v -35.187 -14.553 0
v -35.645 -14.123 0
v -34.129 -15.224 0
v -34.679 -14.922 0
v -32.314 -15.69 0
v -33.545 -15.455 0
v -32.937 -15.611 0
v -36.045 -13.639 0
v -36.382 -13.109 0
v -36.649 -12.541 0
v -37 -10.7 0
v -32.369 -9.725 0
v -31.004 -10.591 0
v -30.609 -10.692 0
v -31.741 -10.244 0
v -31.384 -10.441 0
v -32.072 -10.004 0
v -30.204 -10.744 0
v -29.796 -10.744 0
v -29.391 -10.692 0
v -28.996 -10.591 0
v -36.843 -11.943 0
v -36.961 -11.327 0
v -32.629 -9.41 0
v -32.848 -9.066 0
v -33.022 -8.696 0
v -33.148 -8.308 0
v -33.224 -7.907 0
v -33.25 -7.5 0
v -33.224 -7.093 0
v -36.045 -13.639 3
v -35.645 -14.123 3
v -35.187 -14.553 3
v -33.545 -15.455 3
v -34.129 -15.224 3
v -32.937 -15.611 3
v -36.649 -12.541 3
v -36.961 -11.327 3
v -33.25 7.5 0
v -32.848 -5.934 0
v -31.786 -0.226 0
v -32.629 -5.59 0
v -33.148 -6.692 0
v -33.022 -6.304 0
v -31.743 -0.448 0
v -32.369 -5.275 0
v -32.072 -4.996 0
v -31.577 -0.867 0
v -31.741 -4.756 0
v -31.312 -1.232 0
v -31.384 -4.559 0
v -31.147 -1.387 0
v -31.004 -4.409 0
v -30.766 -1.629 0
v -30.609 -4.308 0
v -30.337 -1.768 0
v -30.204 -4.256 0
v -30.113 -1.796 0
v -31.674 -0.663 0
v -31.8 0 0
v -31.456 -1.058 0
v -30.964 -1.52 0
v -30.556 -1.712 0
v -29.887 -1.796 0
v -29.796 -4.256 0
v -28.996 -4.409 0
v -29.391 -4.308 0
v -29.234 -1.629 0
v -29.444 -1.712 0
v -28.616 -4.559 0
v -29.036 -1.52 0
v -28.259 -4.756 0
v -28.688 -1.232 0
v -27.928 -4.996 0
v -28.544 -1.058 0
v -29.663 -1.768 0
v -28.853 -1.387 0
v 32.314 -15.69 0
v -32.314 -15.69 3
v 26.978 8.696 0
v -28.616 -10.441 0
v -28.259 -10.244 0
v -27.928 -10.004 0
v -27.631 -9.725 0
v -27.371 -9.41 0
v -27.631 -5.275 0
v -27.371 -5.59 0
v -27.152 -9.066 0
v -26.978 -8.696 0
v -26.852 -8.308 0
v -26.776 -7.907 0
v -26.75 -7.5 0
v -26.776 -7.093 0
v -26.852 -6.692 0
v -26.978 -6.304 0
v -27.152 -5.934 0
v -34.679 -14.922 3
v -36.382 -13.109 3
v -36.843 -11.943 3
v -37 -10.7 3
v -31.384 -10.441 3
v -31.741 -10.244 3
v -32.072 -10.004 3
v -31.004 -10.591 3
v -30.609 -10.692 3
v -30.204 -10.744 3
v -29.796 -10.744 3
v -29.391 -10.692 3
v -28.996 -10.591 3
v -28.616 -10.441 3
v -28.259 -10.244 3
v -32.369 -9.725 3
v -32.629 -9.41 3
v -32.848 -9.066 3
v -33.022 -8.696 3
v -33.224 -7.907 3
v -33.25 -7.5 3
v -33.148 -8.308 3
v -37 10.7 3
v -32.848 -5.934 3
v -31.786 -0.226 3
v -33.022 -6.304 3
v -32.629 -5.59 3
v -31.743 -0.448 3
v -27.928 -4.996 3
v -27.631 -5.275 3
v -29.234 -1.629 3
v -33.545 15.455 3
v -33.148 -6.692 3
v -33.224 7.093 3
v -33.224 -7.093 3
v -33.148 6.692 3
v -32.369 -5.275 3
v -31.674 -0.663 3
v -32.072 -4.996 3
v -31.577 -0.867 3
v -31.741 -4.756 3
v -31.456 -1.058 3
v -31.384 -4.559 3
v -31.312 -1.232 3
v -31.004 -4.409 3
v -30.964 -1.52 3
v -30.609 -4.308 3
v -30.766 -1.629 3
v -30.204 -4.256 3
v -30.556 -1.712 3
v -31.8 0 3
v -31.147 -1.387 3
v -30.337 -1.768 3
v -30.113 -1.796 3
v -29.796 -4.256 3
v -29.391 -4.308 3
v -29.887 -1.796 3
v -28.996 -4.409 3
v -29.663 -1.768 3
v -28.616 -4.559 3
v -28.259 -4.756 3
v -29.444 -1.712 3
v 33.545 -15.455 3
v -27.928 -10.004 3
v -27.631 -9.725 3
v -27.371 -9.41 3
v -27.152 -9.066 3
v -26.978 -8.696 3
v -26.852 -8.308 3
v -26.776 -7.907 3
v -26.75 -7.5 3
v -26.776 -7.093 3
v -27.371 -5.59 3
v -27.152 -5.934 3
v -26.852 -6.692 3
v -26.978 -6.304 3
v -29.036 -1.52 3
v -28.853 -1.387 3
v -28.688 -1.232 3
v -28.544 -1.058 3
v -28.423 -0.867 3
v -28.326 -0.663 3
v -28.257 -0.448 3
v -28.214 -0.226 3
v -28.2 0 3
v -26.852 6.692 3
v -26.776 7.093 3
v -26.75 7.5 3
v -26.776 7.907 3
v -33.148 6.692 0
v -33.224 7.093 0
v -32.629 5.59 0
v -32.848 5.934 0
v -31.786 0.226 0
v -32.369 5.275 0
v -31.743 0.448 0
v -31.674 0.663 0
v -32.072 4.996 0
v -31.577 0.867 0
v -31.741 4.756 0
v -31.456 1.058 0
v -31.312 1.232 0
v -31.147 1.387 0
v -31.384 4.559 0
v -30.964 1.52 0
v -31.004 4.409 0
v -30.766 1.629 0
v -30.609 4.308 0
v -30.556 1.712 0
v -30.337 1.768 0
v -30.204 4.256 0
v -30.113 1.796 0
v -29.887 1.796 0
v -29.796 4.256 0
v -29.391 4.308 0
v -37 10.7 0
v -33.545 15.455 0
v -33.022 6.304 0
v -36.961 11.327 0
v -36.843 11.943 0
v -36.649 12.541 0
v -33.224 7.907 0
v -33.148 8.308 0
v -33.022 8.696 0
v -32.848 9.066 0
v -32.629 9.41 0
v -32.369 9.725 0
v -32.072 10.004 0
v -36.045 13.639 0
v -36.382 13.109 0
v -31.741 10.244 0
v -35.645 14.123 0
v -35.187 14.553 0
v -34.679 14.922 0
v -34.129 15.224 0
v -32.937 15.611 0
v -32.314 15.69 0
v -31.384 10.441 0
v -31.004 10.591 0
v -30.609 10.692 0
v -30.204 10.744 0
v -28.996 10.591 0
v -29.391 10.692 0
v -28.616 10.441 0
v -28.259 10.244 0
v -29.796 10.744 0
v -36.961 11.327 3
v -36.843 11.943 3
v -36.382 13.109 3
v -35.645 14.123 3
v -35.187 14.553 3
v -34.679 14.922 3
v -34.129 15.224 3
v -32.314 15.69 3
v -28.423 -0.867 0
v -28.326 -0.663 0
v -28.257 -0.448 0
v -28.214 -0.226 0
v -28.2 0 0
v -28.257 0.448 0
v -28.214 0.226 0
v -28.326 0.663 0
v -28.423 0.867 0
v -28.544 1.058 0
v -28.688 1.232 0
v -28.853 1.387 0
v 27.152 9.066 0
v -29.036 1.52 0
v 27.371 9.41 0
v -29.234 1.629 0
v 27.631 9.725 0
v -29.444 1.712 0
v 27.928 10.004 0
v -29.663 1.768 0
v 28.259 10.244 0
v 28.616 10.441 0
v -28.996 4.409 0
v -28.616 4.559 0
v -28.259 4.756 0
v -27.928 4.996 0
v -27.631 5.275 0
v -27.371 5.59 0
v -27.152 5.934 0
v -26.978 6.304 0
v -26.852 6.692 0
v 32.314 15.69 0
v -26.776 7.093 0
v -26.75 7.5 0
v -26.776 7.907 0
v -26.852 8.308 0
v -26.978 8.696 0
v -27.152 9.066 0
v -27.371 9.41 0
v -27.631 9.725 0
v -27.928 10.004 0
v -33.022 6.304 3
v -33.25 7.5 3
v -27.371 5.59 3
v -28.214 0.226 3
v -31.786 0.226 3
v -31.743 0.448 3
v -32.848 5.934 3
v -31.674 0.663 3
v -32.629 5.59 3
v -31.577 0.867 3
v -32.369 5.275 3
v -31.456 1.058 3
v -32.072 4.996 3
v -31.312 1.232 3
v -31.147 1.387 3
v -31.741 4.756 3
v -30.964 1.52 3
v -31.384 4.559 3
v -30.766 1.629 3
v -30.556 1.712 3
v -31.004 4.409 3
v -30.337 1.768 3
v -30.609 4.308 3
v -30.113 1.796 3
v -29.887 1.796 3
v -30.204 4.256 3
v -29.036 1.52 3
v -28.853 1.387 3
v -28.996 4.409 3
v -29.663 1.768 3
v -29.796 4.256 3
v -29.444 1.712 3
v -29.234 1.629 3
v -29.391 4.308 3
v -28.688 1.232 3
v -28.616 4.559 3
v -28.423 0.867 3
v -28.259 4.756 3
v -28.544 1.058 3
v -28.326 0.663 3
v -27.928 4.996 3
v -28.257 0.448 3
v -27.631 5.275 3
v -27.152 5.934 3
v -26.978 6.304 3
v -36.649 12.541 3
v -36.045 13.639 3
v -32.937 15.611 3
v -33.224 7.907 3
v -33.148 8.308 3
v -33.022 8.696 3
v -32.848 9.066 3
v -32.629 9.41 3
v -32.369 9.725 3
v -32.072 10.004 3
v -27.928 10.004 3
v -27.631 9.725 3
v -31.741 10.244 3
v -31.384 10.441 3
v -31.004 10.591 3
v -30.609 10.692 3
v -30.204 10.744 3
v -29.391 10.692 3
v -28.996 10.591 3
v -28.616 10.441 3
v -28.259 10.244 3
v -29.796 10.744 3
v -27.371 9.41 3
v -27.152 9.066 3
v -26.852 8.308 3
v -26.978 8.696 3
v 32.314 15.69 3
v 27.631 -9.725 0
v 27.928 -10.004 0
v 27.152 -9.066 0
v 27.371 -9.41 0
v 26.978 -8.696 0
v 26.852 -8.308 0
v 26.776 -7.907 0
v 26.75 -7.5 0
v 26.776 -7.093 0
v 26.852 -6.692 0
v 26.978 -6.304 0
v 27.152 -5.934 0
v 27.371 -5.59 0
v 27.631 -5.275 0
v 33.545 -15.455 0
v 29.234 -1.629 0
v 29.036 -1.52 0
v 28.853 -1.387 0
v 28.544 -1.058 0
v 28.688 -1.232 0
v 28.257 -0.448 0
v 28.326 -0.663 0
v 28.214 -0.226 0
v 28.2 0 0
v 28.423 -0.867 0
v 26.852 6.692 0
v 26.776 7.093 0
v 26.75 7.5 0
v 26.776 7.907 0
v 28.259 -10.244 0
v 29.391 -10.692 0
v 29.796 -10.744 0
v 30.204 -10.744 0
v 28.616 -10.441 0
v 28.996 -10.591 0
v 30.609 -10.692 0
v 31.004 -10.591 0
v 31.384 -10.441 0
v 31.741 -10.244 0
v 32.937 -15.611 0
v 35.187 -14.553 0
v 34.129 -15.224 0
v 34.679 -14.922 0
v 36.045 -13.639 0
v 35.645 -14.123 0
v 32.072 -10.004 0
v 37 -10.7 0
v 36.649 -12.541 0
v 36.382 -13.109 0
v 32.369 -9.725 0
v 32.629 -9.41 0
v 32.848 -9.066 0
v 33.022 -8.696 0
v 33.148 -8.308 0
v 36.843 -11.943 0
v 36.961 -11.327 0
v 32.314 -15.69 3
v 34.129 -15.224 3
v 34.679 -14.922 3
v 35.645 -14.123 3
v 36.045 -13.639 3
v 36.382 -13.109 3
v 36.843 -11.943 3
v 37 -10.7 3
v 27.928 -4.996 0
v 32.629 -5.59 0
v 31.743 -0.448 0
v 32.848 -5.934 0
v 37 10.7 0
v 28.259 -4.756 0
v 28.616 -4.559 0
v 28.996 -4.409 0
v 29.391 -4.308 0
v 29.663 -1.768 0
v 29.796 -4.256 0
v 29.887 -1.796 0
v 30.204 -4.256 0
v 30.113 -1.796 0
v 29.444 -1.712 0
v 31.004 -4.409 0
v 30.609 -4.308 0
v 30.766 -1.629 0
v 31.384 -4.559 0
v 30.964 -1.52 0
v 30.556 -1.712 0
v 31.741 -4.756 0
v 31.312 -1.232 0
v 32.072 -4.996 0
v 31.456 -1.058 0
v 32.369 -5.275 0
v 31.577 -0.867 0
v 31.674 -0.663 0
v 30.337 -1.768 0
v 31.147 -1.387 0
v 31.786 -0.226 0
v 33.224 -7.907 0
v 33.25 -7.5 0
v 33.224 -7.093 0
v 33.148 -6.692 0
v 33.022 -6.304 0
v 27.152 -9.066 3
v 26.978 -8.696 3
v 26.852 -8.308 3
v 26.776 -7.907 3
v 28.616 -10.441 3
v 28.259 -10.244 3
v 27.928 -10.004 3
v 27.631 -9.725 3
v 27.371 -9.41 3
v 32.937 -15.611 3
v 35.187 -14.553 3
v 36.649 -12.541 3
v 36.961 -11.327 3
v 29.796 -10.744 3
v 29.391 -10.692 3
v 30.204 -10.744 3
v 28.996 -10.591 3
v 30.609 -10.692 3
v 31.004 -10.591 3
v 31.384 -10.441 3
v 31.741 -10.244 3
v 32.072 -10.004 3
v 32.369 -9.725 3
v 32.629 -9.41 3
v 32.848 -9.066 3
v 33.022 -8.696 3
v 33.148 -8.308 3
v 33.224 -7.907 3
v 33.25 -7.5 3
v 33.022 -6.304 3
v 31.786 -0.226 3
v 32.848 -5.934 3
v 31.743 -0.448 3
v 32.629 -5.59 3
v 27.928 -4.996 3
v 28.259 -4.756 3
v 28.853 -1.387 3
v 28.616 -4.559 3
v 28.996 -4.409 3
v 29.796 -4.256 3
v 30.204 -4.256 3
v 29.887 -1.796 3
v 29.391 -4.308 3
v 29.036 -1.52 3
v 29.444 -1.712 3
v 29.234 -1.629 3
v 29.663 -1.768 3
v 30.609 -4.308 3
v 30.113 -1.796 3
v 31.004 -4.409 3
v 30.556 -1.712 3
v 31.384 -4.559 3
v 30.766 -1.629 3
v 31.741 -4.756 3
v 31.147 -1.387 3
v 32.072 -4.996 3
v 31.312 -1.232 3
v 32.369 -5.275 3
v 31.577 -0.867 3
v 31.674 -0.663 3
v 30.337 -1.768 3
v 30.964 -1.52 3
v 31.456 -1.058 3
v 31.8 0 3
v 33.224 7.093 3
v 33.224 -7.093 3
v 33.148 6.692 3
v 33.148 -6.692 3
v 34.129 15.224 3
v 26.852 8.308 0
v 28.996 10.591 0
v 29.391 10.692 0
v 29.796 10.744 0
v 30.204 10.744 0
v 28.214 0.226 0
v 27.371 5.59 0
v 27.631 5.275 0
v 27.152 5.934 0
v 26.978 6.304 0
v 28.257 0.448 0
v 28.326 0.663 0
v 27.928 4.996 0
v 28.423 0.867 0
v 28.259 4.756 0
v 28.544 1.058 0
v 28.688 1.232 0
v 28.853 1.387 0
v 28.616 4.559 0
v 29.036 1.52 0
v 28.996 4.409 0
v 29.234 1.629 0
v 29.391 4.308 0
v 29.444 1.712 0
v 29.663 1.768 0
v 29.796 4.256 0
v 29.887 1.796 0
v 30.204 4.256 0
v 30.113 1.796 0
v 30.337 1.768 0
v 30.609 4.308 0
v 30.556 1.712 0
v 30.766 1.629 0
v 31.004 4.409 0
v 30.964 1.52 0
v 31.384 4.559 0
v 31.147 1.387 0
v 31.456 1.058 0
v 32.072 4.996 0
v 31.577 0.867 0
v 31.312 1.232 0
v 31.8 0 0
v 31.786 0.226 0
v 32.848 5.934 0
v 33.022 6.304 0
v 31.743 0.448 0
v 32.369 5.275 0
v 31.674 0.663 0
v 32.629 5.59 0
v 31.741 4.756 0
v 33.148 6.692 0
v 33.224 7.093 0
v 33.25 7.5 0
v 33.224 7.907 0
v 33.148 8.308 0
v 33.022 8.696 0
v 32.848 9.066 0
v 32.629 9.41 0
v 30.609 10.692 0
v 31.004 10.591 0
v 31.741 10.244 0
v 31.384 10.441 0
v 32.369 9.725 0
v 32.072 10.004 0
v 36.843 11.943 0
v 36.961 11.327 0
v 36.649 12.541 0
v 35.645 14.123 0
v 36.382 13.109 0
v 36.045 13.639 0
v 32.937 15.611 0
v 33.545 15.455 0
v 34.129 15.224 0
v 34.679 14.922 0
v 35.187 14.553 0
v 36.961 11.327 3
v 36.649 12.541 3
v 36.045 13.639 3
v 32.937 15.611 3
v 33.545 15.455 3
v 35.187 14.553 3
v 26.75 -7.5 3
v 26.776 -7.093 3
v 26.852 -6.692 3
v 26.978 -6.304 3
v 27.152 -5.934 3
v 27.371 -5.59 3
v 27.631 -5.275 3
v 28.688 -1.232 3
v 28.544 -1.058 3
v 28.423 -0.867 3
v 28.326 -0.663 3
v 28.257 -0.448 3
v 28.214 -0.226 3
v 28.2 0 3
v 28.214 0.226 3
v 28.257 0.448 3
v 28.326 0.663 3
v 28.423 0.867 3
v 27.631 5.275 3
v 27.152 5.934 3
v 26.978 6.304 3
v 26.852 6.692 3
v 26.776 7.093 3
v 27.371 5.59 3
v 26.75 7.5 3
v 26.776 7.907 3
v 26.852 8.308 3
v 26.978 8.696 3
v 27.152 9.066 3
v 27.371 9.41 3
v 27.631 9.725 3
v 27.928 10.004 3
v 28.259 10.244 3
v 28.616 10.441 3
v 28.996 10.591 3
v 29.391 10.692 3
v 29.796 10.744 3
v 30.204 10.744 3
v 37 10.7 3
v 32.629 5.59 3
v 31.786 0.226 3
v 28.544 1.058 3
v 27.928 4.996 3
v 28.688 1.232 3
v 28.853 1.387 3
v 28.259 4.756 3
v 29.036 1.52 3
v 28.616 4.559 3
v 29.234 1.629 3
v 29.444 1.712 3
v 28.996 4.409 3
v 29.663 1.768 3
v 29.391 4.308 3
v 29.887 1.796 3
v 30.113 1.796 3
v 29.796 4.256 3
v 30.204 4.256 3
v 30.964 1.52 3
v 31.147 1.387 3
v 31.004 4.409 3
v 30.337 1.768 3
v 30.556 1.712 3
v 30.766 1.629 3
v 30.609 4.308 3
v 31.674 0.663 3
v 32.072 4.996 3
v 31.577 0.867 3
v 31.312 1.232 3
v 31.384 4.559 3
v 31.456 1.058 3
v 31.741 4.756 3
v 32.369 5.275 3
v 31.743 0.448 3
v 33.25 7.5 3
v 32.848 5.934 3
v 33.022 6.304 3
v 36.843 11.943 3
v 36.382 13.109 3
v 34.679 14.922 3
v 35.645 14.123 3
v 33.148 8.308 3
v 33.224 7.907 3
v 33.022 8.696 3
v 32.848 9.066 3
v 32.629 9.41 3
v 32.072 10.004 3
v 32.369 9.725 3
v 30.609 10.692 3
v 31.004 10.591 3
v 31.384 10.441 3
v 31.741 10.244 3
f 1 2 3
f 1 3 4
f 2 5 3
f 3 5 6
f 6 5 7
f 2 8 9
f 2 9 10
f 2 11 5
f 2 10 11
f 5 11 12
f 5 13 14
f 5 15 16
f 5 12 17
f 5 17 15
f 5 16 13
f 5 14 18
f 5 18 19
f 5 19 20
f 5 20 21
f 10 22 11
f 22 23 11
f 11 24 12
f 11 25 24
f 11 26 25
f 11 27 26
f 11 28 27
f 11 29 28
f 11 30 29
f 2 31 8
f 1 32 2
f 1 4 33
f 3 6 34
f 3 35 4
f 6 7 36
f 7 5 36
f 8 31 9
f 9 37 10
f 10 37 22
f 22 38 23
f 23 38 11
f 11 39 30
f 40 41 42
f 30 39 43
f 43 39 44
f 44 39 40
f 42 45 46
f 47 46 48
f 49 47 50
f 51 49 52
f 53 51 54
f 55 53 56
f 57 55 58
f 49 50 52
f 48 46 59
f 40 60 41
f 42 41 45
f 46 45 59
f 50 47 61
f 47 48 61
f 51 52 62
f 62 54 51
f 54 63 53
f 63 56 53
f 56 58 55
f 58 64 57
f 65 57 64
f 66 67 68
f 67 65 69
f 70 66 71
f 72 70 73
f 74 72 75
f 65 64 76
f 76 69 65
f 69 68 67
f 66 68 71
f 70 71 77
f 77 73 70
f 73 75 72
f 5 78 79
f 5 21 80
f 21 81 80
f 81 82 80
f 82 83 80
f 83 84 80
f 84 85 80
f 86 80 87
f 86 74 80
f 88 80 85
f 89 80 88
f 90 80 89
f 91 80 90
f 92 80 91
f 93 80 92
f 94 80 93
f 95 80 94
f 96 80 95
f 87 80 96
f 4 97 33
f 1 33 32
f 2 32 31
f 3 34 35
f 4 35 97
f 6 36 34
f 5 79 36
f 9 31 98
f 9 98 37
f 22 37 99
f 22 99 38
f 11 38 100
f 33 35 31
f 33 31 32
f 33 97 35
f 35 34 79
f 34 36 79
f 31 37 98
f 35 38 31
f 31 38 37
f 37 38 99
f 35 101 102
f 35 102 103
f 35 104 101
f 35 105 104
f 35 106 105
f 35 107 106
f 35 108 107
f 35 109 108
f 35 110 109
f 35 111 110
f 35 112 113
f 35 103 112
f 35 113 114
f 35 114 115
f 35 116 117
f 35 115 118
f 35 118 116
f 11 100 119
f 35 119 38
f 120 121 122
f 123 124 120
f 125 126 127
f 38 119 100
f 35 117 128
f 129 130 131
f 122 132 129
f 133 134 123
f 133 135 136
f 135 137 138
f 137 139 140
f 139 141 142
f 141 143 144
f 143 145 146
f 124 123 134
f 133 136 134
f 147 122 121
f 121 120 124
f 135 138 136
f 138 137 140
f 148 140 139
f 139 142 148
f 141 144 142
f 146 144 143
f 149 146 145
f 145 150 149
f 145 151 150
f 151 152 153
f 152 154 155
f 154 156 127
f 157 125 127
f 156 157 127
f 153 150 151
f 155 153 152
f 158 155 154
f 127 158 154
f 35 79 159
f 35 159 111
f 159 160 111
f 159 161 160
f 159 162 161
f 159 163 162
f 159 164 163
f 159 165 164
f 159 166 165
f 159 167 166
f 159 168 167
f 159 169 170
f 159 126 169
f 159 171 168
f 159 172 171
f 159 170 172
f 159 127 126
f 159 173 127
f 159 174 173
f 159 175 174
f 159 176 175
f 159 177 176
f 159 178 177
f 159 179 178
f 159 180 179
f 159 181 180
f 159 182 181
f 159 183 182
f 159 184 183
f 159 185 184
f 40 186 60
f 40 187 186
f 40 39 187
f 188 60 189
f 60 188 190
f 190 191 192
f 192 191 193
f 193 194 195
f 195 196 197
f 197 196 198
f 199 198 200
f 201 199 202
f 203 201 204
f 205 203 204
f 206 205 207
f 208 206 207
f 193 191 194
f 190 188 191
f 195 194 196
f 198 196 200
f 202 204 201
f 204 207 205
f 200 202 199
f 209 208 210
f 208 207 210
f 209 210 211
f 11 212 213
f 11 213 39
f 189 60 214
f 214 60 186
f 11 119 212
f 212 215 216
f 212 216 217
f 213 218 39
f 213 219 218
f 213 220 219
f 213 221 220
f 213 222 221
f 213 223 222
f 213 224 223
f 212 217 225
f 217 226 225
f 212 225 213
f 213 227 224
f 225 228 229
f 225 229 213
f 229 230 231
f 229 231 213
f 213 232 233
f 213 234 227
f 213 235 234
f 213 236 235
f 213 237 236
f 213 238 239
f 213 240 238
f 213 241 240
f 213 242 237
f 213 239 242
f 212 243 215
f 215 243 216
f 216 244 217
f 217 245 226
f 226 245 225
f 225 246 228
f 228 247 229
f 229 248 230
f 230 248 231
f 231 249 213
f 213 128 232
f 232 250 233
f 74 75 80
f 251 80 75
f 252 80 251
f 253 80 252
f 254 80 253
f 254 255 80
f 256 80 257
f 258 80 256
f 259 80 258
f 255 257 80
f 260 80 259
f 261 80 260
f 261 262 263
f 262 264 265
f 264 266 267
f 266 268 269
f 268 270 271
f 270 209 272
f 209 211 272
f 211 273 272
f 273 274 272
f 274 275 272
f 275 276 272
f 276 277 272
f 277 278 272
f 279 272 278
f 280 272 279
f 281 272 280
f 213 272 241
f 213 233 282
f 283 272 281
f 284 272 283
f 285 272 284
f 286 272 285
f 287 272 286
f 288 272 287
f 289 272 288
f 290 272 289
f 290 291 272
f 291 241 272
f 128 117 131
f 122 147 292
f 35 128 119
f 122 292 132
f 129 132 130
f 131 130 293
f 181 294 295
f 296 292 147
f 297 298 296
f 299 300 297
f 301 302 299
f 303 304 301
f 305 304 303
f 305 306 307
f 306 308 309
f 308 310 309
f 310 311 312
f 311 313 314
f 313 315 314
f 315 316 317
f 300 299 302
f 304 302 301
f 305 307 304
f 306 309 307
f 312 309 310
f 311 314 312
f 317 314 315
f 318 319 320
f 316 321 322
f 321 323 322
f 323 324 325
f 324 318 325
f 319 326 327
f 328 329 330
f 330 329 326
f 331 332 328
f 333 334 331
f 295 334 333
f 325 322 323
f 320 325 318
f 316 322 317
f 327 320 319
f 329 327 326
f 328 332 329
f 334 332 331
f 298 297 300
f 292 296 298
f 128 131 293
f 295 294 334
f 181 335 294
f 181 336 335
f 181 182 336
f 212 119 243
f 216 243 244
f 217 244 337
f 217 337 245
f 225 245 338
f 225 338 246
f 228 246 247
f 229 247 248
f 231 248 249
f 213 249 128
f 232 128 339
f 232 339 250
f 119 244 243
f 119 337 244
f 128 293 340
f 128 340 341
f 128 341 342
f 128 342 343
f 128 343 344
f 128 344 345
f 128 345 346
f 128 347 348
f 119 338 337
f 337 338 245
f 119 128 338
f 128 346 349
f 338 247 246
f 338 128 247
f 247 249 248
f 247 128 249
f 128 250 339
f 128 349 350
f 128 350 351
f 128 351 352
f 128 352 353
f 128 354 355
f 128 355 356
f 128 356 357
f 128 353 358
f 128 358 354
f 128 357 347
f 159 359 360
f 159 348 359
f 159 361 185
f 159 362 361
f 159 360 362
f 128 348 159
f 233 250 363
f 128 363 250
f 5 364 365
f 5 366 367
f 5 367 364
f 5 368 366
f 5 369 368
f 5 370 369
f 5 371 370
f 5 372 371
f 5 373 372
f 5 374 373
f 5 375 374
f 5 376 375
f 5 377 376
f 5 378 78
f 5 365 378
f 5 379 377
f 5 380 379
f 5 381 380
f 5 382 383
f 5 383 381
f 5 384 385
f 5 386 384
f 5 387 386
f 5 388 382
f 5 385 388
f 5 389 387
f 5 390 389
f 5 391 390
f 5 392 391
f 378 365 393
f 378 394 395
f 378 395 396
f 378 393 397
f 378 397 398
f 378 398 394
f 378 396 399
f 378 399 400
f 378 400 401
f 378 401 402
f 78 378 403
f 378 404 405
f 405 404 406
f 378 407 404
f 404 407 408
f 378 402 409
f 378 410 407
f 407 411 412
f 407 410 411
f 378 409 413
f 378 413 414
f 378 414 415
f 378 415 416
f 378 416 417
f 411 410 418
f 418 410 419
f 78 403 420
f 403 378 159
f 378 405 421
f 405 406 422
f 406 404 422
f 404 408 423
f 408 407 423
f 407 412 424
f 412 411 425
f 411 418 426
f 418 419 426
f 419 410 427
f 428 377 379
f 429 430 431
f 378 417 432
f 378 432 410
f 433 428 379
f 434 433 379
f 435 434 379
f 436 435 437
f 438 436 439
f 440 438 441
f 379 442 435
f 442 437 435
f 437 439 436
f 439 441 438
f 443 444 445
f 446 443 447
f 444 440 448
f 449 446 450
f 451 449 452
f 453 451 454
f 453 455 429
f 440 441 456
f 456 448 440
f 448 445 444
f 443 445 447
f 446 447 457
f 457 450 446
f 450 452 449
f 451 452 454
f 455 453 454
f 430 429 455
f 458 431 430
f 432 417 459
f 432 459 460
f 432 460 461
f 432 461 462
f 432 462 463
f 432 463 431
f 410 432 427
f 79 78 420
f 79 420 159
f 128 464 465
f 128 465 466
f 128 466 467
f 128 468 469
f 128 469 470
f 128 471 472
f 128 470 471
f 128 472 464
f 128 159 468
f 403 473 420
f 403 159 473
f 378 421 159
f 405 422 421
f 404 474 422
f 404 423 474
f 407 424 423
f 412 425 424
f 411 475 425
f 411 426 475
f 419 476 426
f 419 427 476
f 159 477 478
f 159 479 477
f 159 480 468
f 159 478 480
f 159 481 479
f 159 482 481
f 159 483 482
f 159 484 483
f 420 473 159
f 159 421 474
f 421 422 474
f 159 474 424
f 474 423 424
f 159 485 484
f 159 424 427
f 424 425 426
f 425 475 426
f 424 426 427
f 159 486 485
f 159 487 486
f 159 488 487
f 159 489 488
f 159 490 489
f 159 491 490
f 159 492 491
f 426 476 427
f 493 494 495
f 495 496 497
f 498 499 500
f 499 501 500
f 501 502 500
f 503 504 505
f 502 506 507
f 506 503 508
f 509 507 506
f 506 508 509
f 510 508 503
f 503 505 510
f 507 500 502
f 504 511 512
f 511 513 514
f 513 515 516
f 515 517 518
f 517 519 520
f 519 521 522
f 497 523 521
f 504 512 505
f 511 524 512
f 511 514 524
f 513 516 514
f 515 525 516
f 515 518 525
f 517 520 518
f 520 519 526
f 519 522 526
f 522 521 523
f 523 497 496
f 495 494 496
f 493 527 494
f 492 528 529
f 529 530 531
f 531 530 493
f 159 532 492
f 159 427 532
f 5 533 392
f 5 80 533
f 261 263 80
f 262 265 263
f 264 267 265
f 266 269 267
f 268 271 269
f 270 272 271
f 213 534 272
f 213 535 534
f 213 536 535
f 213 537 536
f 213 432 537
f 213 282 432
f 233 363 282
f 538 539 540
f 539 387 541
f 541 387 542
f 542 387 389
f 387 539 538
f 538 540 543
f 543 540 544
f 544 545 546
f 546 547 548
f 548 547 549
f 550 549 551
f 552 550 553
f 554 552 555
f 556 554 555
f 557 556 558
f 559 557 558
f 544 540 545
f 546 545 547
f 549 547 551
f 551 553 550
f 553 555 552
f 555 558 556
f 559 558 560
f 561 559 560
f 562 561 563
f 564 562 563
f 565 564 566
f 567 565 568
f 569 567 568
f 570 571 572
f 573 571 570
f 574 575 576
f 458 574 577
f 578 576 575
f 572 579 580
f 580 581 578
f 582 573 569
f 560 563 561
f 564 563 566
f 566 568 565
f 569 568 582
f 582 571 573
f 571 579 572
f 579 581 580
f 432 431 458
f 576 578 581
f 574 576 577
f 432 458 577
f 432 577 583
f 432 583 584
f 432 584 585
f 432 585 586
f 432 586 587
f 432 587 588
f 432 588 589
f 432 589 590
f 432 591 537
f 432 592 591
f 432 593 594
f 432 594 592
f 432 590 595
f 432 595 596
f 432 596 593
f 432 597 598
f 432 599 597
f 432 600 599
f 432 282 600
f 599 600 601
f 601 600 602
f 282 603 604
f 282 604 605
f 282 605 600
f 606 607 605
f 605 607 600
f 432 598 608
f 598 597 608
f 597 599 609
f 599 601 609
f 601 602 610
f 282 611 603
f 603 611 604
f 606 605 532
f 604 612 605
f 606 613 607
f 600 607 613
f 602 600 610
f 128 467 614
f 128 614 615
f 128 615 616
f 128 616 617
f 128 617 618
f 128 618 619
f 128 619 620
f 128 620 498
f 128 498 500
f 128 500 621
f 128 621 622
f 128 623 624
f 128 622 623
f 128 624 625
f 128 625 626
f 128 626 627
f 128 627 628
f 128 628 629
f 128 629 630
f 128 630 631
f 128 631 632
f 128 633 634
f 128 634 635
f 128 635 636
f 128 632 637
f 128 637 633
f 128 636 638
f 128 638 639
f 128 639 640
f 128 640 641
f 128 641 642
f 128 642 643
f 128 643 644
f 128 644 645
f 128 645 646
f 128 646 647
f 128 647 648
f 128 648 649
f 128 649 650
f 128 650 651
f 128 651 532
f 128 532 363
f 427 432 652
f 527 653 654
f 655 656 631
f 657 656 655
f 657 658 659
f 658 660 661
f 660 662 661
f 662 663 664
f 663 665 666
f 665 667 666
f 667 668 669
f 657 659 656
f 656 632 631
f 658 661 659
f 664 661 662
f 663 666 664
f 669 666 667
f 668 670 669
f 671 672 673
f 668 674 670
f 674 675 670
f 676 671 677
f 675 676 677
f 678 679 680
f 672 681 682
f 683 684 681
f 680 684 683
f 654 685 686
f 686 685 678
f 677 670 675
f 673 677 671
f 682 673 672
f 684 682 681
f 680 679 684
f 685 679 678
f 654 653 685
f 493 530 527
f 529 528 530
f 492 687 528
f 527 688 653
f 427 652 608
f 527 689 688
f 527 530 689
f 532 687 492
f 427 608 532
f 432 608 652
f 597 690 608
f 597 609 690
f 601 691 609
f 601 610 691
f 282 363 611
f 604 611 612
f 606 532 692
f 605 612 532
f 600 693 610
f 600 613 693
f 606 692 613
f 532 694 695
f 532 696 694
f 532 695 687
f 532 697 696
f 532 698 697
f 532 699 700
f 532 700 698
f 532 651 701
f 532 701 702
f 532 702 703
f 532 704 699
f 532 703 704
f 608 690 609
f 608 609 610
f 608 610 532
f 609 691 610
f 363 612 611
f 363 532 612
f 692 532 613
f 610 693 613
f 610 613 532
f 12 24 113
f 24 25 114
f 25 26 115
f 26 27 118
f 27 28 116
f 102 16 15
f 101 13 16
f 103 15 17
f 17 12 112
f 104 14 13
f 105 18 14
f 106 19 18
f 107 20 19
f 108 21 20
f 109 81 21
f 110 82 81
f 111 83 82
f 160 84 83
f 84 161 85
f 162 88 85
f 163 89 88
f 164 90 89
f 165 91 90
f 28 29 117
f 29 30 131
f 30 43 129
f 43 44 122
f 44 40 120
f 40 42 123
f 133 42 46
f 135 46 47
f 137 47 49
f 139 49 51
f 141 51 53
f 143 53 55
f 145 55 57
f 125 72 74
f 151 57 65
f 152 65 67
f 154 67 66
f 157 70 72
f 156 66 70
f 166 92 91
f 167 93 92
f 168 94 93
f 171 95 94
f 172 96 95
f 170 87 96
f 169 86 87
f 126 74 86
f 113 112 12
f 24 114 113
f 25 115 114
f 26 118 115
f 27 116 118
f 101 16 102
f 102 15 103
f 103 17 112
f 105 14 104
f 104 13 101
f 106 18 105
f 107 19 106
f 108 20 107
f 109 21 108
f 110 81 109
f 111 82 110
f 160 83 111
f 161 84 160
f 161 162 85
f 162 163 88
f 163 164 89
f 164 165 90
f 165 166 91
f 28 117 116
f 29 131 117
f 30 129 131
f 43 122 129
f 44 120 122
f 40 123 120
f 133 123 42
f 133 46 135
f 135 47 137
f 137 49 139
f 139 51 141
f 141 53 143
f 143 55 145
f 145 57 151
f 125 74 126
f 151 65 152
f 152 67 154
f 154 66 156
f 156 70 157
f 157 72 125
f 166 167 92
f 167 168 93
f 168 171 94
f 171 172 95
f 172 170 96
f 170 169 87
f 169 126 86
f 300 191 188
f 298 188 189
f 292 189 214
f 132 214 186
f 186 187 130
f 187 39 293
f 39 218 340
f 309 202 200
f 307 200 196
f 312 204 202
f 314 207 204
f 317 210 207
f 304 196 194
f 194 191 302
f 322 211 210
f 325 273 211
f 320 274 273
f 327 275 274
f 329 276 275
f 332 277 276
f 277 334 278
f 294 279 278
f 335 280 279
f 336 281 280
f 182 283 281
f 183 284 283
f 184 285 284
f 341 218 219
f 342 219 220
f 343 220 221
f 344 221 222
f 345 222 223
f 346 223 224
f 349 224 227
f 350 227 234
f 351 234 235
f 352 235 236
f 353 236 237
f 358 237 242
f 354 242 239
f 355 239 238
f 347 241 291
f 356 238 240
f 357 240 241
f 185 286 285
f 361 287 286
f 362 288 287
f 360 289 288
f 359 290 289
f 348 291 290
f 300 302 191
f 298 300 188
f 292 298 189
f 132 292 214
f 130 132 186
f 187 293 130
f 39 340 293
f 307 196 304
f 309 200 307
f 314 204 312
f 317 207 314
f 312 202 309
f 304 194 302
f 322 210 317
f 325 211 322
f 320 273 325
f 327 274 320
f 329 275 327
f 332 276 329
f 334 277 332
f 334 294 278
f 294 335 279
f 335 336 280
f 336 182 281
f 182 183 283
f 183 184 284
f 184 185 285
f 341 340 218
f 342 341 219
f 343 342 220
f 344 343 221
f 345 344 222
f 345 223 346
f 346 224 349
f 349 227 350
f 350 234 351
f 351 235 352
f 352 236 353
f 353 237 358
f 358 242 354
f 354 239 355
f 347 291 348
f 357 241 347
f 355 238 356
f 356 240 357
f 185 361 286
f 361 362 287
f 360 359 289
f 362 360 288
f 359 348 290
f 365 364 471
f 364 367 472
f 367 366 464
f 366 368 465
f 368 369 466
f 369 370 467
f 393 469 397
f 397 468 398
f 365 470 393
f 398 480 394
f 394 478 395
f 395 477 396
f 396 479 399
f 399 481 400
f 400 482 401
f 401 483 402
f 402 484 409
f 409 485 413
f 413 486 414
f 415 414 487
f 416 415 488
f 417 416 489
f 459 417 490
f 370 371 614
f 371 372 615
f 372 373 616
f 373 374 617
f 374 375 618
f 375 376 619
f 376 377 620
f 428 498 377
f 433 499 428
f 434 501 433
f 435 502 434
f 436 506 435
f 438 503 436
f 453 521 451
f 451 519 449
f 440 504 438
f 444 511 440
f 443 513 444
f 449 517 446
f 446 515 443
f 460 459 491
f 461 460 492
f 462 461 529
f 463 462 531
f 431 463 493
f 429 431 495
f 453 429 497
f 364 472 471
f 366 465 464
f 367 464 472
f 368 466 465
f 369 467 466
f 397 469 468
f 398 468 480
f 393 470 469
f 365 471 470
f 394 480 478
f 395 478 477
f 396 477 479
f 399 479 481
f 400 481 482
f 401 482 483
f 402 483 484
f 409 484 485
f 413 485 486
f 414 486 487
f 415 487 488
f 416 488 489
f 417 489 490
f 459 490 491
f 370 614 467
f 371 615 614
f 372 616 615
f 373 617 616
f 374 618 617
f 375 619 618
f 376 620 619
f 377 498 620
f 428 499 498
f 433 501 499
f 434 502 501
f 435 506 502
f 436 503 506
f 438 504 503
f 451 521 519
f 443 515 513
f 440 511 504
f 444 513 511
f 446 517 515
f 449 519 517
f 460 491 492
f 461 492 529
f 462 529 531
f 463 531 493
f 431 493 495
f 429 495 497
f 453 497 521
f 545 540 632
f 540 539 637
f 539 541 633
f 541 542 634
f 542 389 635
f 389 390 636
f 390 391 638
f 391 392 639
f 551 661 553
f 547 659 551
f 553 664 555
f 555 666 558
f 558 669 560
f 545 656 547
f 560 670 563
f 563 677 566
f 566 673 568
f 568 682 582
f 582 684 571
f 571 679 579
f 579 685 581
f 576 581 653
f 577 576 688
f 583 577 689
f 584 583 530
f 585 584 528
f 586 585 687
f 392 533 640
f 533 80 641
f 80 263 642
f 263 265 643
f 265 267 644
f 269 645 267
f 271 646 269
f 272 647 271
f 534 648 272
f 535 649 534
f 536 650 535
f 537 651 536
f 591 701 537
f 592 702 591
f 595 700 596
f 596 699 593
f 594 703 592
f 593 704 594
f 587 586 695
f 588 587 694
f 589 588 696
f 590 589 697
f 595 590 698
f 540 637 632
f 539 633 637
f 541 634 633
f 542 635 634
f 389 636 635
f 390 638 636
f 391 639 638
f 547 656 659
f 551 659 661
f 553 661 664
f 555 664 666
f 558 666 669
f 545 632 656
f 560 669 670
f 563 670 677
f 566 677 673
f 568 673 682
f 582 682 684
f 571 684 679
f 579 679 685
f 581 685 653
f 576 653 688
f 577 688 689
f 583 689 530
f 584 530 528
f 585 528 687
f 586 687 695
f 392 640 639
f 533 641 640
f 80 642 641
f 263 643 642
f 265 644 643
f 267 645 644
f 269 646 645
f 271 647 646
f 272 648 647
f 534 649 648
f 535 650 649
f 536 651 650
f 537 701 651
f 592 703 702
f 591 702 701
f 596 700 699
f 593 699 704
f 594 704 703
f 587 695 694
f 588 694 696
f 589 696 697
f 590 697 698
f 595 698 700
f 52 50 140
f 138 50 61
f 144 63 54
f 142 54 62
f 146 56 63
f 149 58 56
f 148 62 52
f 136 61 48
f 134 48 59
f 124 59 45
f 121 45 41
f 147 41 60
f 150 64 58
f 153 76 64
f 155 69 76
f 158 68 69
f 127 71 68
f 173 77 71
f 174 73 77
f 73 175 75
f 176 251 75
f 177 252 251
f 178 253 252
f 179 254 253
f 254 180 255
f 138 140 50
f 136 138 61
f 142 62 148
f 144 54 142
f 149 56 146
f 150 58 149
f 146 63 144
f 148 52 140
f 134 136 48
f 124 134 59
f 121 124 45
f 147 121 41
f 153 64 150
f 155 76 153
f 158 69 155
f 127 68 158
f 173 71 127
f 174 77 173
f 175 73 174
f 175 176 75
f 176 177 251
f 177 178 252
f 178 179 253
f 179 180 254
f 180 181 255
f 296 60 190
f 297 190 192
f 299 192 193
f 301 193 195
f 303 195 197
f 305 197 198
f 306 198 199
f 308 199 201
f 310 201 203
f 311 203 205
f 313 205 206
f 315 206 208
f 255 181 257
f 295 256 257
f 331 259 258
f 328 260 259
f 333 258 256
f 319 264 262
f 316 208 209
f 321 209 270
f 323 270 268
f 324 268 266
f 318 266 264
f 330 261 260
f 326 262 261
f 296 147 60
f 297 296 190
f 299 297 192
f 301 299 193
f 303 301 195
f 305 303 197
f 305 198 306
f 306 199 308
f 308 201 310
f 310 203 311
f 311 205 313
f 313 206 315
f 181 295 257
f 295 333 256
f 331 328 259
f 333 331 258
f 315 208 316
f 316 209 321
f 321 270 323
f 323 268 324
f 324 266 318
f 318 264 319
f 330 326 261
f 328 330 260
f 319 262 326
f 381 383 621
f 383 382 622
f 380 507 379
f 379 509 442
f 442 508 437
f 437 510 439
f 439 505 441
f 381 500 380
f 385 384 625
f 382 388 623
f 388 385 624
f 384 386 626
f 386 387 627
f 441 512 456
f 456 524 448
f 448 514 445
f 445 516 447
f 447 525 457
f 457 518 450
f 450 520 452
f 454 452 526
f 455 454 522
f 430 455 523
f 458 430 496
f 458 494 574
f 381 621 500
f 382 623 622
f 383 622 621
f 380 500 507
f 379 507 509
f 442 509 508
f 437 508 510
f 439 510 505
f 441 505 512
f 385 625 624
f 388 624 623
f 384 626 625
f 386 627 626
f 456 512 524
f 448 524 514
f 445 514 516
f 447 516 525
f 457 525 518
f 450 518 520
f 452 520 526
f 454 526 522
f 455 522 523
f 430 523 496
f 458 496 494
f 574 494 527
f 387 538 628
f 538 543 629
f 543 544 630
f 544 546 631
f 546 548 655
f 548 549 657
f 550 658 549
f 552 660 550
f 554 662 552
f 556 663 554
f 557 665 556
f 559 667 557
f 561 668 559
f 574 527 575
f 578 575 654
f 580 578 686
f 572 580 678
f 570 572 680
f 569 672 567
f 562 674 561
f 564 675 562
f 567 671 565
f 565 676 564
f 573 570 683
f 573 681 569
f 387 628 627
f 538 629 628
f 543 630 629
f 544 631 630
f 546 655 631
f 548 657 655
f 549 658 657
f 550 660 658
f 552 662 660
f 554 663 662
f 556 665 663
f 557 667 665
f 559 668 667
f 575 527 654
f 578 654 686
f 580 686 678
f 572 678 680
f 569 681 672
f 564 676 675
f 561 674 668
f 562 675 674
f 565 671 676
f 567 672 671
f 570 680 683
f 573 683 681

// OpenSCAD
$fn = 50;

difference() {
	union() {
		hull() {
			translate(v = [-32.0, 10.7, 0]) {
				cylinder(h = 3, r = 5);
			}
			translate(v = [32.0, 10.7, 0]) {
				cylinder(h = 3, r = 5);
			}
			translate(v = [-32.0, -10.7, 0]) {
				cylinder(h = 3, r = 5);
			}
			translate(v = [32.0, -10.7, 0]) {
				cylinder(h = 3, r = 5);
			}
		}
	}
	union() {
		translate(v = [-30.0, -7.5, -1]) {
			cylinder(h = 5, r = 3.25);
		}
		translate(v = [-30.0, 7.5, -1]) {
			cylinder(h = 5, r = 3.25);
		}
		translate(v = [30.0, -7.5, -1]) {
			cylinder(h = 5, r = 3.25);
		}
		translate(v = [30.0, 7.5, -1]) {
			cylinder(h = 5, r = 3.25);
		}
		translate(v = [-30.0, 0.0, -1]) {
			cylinder(h = 5, r = 1.8);
		}
		translate(v = [30.0, 0.0, -1]) {
			cylinder(h = 5, r = 1.8);
		}
	}
}
